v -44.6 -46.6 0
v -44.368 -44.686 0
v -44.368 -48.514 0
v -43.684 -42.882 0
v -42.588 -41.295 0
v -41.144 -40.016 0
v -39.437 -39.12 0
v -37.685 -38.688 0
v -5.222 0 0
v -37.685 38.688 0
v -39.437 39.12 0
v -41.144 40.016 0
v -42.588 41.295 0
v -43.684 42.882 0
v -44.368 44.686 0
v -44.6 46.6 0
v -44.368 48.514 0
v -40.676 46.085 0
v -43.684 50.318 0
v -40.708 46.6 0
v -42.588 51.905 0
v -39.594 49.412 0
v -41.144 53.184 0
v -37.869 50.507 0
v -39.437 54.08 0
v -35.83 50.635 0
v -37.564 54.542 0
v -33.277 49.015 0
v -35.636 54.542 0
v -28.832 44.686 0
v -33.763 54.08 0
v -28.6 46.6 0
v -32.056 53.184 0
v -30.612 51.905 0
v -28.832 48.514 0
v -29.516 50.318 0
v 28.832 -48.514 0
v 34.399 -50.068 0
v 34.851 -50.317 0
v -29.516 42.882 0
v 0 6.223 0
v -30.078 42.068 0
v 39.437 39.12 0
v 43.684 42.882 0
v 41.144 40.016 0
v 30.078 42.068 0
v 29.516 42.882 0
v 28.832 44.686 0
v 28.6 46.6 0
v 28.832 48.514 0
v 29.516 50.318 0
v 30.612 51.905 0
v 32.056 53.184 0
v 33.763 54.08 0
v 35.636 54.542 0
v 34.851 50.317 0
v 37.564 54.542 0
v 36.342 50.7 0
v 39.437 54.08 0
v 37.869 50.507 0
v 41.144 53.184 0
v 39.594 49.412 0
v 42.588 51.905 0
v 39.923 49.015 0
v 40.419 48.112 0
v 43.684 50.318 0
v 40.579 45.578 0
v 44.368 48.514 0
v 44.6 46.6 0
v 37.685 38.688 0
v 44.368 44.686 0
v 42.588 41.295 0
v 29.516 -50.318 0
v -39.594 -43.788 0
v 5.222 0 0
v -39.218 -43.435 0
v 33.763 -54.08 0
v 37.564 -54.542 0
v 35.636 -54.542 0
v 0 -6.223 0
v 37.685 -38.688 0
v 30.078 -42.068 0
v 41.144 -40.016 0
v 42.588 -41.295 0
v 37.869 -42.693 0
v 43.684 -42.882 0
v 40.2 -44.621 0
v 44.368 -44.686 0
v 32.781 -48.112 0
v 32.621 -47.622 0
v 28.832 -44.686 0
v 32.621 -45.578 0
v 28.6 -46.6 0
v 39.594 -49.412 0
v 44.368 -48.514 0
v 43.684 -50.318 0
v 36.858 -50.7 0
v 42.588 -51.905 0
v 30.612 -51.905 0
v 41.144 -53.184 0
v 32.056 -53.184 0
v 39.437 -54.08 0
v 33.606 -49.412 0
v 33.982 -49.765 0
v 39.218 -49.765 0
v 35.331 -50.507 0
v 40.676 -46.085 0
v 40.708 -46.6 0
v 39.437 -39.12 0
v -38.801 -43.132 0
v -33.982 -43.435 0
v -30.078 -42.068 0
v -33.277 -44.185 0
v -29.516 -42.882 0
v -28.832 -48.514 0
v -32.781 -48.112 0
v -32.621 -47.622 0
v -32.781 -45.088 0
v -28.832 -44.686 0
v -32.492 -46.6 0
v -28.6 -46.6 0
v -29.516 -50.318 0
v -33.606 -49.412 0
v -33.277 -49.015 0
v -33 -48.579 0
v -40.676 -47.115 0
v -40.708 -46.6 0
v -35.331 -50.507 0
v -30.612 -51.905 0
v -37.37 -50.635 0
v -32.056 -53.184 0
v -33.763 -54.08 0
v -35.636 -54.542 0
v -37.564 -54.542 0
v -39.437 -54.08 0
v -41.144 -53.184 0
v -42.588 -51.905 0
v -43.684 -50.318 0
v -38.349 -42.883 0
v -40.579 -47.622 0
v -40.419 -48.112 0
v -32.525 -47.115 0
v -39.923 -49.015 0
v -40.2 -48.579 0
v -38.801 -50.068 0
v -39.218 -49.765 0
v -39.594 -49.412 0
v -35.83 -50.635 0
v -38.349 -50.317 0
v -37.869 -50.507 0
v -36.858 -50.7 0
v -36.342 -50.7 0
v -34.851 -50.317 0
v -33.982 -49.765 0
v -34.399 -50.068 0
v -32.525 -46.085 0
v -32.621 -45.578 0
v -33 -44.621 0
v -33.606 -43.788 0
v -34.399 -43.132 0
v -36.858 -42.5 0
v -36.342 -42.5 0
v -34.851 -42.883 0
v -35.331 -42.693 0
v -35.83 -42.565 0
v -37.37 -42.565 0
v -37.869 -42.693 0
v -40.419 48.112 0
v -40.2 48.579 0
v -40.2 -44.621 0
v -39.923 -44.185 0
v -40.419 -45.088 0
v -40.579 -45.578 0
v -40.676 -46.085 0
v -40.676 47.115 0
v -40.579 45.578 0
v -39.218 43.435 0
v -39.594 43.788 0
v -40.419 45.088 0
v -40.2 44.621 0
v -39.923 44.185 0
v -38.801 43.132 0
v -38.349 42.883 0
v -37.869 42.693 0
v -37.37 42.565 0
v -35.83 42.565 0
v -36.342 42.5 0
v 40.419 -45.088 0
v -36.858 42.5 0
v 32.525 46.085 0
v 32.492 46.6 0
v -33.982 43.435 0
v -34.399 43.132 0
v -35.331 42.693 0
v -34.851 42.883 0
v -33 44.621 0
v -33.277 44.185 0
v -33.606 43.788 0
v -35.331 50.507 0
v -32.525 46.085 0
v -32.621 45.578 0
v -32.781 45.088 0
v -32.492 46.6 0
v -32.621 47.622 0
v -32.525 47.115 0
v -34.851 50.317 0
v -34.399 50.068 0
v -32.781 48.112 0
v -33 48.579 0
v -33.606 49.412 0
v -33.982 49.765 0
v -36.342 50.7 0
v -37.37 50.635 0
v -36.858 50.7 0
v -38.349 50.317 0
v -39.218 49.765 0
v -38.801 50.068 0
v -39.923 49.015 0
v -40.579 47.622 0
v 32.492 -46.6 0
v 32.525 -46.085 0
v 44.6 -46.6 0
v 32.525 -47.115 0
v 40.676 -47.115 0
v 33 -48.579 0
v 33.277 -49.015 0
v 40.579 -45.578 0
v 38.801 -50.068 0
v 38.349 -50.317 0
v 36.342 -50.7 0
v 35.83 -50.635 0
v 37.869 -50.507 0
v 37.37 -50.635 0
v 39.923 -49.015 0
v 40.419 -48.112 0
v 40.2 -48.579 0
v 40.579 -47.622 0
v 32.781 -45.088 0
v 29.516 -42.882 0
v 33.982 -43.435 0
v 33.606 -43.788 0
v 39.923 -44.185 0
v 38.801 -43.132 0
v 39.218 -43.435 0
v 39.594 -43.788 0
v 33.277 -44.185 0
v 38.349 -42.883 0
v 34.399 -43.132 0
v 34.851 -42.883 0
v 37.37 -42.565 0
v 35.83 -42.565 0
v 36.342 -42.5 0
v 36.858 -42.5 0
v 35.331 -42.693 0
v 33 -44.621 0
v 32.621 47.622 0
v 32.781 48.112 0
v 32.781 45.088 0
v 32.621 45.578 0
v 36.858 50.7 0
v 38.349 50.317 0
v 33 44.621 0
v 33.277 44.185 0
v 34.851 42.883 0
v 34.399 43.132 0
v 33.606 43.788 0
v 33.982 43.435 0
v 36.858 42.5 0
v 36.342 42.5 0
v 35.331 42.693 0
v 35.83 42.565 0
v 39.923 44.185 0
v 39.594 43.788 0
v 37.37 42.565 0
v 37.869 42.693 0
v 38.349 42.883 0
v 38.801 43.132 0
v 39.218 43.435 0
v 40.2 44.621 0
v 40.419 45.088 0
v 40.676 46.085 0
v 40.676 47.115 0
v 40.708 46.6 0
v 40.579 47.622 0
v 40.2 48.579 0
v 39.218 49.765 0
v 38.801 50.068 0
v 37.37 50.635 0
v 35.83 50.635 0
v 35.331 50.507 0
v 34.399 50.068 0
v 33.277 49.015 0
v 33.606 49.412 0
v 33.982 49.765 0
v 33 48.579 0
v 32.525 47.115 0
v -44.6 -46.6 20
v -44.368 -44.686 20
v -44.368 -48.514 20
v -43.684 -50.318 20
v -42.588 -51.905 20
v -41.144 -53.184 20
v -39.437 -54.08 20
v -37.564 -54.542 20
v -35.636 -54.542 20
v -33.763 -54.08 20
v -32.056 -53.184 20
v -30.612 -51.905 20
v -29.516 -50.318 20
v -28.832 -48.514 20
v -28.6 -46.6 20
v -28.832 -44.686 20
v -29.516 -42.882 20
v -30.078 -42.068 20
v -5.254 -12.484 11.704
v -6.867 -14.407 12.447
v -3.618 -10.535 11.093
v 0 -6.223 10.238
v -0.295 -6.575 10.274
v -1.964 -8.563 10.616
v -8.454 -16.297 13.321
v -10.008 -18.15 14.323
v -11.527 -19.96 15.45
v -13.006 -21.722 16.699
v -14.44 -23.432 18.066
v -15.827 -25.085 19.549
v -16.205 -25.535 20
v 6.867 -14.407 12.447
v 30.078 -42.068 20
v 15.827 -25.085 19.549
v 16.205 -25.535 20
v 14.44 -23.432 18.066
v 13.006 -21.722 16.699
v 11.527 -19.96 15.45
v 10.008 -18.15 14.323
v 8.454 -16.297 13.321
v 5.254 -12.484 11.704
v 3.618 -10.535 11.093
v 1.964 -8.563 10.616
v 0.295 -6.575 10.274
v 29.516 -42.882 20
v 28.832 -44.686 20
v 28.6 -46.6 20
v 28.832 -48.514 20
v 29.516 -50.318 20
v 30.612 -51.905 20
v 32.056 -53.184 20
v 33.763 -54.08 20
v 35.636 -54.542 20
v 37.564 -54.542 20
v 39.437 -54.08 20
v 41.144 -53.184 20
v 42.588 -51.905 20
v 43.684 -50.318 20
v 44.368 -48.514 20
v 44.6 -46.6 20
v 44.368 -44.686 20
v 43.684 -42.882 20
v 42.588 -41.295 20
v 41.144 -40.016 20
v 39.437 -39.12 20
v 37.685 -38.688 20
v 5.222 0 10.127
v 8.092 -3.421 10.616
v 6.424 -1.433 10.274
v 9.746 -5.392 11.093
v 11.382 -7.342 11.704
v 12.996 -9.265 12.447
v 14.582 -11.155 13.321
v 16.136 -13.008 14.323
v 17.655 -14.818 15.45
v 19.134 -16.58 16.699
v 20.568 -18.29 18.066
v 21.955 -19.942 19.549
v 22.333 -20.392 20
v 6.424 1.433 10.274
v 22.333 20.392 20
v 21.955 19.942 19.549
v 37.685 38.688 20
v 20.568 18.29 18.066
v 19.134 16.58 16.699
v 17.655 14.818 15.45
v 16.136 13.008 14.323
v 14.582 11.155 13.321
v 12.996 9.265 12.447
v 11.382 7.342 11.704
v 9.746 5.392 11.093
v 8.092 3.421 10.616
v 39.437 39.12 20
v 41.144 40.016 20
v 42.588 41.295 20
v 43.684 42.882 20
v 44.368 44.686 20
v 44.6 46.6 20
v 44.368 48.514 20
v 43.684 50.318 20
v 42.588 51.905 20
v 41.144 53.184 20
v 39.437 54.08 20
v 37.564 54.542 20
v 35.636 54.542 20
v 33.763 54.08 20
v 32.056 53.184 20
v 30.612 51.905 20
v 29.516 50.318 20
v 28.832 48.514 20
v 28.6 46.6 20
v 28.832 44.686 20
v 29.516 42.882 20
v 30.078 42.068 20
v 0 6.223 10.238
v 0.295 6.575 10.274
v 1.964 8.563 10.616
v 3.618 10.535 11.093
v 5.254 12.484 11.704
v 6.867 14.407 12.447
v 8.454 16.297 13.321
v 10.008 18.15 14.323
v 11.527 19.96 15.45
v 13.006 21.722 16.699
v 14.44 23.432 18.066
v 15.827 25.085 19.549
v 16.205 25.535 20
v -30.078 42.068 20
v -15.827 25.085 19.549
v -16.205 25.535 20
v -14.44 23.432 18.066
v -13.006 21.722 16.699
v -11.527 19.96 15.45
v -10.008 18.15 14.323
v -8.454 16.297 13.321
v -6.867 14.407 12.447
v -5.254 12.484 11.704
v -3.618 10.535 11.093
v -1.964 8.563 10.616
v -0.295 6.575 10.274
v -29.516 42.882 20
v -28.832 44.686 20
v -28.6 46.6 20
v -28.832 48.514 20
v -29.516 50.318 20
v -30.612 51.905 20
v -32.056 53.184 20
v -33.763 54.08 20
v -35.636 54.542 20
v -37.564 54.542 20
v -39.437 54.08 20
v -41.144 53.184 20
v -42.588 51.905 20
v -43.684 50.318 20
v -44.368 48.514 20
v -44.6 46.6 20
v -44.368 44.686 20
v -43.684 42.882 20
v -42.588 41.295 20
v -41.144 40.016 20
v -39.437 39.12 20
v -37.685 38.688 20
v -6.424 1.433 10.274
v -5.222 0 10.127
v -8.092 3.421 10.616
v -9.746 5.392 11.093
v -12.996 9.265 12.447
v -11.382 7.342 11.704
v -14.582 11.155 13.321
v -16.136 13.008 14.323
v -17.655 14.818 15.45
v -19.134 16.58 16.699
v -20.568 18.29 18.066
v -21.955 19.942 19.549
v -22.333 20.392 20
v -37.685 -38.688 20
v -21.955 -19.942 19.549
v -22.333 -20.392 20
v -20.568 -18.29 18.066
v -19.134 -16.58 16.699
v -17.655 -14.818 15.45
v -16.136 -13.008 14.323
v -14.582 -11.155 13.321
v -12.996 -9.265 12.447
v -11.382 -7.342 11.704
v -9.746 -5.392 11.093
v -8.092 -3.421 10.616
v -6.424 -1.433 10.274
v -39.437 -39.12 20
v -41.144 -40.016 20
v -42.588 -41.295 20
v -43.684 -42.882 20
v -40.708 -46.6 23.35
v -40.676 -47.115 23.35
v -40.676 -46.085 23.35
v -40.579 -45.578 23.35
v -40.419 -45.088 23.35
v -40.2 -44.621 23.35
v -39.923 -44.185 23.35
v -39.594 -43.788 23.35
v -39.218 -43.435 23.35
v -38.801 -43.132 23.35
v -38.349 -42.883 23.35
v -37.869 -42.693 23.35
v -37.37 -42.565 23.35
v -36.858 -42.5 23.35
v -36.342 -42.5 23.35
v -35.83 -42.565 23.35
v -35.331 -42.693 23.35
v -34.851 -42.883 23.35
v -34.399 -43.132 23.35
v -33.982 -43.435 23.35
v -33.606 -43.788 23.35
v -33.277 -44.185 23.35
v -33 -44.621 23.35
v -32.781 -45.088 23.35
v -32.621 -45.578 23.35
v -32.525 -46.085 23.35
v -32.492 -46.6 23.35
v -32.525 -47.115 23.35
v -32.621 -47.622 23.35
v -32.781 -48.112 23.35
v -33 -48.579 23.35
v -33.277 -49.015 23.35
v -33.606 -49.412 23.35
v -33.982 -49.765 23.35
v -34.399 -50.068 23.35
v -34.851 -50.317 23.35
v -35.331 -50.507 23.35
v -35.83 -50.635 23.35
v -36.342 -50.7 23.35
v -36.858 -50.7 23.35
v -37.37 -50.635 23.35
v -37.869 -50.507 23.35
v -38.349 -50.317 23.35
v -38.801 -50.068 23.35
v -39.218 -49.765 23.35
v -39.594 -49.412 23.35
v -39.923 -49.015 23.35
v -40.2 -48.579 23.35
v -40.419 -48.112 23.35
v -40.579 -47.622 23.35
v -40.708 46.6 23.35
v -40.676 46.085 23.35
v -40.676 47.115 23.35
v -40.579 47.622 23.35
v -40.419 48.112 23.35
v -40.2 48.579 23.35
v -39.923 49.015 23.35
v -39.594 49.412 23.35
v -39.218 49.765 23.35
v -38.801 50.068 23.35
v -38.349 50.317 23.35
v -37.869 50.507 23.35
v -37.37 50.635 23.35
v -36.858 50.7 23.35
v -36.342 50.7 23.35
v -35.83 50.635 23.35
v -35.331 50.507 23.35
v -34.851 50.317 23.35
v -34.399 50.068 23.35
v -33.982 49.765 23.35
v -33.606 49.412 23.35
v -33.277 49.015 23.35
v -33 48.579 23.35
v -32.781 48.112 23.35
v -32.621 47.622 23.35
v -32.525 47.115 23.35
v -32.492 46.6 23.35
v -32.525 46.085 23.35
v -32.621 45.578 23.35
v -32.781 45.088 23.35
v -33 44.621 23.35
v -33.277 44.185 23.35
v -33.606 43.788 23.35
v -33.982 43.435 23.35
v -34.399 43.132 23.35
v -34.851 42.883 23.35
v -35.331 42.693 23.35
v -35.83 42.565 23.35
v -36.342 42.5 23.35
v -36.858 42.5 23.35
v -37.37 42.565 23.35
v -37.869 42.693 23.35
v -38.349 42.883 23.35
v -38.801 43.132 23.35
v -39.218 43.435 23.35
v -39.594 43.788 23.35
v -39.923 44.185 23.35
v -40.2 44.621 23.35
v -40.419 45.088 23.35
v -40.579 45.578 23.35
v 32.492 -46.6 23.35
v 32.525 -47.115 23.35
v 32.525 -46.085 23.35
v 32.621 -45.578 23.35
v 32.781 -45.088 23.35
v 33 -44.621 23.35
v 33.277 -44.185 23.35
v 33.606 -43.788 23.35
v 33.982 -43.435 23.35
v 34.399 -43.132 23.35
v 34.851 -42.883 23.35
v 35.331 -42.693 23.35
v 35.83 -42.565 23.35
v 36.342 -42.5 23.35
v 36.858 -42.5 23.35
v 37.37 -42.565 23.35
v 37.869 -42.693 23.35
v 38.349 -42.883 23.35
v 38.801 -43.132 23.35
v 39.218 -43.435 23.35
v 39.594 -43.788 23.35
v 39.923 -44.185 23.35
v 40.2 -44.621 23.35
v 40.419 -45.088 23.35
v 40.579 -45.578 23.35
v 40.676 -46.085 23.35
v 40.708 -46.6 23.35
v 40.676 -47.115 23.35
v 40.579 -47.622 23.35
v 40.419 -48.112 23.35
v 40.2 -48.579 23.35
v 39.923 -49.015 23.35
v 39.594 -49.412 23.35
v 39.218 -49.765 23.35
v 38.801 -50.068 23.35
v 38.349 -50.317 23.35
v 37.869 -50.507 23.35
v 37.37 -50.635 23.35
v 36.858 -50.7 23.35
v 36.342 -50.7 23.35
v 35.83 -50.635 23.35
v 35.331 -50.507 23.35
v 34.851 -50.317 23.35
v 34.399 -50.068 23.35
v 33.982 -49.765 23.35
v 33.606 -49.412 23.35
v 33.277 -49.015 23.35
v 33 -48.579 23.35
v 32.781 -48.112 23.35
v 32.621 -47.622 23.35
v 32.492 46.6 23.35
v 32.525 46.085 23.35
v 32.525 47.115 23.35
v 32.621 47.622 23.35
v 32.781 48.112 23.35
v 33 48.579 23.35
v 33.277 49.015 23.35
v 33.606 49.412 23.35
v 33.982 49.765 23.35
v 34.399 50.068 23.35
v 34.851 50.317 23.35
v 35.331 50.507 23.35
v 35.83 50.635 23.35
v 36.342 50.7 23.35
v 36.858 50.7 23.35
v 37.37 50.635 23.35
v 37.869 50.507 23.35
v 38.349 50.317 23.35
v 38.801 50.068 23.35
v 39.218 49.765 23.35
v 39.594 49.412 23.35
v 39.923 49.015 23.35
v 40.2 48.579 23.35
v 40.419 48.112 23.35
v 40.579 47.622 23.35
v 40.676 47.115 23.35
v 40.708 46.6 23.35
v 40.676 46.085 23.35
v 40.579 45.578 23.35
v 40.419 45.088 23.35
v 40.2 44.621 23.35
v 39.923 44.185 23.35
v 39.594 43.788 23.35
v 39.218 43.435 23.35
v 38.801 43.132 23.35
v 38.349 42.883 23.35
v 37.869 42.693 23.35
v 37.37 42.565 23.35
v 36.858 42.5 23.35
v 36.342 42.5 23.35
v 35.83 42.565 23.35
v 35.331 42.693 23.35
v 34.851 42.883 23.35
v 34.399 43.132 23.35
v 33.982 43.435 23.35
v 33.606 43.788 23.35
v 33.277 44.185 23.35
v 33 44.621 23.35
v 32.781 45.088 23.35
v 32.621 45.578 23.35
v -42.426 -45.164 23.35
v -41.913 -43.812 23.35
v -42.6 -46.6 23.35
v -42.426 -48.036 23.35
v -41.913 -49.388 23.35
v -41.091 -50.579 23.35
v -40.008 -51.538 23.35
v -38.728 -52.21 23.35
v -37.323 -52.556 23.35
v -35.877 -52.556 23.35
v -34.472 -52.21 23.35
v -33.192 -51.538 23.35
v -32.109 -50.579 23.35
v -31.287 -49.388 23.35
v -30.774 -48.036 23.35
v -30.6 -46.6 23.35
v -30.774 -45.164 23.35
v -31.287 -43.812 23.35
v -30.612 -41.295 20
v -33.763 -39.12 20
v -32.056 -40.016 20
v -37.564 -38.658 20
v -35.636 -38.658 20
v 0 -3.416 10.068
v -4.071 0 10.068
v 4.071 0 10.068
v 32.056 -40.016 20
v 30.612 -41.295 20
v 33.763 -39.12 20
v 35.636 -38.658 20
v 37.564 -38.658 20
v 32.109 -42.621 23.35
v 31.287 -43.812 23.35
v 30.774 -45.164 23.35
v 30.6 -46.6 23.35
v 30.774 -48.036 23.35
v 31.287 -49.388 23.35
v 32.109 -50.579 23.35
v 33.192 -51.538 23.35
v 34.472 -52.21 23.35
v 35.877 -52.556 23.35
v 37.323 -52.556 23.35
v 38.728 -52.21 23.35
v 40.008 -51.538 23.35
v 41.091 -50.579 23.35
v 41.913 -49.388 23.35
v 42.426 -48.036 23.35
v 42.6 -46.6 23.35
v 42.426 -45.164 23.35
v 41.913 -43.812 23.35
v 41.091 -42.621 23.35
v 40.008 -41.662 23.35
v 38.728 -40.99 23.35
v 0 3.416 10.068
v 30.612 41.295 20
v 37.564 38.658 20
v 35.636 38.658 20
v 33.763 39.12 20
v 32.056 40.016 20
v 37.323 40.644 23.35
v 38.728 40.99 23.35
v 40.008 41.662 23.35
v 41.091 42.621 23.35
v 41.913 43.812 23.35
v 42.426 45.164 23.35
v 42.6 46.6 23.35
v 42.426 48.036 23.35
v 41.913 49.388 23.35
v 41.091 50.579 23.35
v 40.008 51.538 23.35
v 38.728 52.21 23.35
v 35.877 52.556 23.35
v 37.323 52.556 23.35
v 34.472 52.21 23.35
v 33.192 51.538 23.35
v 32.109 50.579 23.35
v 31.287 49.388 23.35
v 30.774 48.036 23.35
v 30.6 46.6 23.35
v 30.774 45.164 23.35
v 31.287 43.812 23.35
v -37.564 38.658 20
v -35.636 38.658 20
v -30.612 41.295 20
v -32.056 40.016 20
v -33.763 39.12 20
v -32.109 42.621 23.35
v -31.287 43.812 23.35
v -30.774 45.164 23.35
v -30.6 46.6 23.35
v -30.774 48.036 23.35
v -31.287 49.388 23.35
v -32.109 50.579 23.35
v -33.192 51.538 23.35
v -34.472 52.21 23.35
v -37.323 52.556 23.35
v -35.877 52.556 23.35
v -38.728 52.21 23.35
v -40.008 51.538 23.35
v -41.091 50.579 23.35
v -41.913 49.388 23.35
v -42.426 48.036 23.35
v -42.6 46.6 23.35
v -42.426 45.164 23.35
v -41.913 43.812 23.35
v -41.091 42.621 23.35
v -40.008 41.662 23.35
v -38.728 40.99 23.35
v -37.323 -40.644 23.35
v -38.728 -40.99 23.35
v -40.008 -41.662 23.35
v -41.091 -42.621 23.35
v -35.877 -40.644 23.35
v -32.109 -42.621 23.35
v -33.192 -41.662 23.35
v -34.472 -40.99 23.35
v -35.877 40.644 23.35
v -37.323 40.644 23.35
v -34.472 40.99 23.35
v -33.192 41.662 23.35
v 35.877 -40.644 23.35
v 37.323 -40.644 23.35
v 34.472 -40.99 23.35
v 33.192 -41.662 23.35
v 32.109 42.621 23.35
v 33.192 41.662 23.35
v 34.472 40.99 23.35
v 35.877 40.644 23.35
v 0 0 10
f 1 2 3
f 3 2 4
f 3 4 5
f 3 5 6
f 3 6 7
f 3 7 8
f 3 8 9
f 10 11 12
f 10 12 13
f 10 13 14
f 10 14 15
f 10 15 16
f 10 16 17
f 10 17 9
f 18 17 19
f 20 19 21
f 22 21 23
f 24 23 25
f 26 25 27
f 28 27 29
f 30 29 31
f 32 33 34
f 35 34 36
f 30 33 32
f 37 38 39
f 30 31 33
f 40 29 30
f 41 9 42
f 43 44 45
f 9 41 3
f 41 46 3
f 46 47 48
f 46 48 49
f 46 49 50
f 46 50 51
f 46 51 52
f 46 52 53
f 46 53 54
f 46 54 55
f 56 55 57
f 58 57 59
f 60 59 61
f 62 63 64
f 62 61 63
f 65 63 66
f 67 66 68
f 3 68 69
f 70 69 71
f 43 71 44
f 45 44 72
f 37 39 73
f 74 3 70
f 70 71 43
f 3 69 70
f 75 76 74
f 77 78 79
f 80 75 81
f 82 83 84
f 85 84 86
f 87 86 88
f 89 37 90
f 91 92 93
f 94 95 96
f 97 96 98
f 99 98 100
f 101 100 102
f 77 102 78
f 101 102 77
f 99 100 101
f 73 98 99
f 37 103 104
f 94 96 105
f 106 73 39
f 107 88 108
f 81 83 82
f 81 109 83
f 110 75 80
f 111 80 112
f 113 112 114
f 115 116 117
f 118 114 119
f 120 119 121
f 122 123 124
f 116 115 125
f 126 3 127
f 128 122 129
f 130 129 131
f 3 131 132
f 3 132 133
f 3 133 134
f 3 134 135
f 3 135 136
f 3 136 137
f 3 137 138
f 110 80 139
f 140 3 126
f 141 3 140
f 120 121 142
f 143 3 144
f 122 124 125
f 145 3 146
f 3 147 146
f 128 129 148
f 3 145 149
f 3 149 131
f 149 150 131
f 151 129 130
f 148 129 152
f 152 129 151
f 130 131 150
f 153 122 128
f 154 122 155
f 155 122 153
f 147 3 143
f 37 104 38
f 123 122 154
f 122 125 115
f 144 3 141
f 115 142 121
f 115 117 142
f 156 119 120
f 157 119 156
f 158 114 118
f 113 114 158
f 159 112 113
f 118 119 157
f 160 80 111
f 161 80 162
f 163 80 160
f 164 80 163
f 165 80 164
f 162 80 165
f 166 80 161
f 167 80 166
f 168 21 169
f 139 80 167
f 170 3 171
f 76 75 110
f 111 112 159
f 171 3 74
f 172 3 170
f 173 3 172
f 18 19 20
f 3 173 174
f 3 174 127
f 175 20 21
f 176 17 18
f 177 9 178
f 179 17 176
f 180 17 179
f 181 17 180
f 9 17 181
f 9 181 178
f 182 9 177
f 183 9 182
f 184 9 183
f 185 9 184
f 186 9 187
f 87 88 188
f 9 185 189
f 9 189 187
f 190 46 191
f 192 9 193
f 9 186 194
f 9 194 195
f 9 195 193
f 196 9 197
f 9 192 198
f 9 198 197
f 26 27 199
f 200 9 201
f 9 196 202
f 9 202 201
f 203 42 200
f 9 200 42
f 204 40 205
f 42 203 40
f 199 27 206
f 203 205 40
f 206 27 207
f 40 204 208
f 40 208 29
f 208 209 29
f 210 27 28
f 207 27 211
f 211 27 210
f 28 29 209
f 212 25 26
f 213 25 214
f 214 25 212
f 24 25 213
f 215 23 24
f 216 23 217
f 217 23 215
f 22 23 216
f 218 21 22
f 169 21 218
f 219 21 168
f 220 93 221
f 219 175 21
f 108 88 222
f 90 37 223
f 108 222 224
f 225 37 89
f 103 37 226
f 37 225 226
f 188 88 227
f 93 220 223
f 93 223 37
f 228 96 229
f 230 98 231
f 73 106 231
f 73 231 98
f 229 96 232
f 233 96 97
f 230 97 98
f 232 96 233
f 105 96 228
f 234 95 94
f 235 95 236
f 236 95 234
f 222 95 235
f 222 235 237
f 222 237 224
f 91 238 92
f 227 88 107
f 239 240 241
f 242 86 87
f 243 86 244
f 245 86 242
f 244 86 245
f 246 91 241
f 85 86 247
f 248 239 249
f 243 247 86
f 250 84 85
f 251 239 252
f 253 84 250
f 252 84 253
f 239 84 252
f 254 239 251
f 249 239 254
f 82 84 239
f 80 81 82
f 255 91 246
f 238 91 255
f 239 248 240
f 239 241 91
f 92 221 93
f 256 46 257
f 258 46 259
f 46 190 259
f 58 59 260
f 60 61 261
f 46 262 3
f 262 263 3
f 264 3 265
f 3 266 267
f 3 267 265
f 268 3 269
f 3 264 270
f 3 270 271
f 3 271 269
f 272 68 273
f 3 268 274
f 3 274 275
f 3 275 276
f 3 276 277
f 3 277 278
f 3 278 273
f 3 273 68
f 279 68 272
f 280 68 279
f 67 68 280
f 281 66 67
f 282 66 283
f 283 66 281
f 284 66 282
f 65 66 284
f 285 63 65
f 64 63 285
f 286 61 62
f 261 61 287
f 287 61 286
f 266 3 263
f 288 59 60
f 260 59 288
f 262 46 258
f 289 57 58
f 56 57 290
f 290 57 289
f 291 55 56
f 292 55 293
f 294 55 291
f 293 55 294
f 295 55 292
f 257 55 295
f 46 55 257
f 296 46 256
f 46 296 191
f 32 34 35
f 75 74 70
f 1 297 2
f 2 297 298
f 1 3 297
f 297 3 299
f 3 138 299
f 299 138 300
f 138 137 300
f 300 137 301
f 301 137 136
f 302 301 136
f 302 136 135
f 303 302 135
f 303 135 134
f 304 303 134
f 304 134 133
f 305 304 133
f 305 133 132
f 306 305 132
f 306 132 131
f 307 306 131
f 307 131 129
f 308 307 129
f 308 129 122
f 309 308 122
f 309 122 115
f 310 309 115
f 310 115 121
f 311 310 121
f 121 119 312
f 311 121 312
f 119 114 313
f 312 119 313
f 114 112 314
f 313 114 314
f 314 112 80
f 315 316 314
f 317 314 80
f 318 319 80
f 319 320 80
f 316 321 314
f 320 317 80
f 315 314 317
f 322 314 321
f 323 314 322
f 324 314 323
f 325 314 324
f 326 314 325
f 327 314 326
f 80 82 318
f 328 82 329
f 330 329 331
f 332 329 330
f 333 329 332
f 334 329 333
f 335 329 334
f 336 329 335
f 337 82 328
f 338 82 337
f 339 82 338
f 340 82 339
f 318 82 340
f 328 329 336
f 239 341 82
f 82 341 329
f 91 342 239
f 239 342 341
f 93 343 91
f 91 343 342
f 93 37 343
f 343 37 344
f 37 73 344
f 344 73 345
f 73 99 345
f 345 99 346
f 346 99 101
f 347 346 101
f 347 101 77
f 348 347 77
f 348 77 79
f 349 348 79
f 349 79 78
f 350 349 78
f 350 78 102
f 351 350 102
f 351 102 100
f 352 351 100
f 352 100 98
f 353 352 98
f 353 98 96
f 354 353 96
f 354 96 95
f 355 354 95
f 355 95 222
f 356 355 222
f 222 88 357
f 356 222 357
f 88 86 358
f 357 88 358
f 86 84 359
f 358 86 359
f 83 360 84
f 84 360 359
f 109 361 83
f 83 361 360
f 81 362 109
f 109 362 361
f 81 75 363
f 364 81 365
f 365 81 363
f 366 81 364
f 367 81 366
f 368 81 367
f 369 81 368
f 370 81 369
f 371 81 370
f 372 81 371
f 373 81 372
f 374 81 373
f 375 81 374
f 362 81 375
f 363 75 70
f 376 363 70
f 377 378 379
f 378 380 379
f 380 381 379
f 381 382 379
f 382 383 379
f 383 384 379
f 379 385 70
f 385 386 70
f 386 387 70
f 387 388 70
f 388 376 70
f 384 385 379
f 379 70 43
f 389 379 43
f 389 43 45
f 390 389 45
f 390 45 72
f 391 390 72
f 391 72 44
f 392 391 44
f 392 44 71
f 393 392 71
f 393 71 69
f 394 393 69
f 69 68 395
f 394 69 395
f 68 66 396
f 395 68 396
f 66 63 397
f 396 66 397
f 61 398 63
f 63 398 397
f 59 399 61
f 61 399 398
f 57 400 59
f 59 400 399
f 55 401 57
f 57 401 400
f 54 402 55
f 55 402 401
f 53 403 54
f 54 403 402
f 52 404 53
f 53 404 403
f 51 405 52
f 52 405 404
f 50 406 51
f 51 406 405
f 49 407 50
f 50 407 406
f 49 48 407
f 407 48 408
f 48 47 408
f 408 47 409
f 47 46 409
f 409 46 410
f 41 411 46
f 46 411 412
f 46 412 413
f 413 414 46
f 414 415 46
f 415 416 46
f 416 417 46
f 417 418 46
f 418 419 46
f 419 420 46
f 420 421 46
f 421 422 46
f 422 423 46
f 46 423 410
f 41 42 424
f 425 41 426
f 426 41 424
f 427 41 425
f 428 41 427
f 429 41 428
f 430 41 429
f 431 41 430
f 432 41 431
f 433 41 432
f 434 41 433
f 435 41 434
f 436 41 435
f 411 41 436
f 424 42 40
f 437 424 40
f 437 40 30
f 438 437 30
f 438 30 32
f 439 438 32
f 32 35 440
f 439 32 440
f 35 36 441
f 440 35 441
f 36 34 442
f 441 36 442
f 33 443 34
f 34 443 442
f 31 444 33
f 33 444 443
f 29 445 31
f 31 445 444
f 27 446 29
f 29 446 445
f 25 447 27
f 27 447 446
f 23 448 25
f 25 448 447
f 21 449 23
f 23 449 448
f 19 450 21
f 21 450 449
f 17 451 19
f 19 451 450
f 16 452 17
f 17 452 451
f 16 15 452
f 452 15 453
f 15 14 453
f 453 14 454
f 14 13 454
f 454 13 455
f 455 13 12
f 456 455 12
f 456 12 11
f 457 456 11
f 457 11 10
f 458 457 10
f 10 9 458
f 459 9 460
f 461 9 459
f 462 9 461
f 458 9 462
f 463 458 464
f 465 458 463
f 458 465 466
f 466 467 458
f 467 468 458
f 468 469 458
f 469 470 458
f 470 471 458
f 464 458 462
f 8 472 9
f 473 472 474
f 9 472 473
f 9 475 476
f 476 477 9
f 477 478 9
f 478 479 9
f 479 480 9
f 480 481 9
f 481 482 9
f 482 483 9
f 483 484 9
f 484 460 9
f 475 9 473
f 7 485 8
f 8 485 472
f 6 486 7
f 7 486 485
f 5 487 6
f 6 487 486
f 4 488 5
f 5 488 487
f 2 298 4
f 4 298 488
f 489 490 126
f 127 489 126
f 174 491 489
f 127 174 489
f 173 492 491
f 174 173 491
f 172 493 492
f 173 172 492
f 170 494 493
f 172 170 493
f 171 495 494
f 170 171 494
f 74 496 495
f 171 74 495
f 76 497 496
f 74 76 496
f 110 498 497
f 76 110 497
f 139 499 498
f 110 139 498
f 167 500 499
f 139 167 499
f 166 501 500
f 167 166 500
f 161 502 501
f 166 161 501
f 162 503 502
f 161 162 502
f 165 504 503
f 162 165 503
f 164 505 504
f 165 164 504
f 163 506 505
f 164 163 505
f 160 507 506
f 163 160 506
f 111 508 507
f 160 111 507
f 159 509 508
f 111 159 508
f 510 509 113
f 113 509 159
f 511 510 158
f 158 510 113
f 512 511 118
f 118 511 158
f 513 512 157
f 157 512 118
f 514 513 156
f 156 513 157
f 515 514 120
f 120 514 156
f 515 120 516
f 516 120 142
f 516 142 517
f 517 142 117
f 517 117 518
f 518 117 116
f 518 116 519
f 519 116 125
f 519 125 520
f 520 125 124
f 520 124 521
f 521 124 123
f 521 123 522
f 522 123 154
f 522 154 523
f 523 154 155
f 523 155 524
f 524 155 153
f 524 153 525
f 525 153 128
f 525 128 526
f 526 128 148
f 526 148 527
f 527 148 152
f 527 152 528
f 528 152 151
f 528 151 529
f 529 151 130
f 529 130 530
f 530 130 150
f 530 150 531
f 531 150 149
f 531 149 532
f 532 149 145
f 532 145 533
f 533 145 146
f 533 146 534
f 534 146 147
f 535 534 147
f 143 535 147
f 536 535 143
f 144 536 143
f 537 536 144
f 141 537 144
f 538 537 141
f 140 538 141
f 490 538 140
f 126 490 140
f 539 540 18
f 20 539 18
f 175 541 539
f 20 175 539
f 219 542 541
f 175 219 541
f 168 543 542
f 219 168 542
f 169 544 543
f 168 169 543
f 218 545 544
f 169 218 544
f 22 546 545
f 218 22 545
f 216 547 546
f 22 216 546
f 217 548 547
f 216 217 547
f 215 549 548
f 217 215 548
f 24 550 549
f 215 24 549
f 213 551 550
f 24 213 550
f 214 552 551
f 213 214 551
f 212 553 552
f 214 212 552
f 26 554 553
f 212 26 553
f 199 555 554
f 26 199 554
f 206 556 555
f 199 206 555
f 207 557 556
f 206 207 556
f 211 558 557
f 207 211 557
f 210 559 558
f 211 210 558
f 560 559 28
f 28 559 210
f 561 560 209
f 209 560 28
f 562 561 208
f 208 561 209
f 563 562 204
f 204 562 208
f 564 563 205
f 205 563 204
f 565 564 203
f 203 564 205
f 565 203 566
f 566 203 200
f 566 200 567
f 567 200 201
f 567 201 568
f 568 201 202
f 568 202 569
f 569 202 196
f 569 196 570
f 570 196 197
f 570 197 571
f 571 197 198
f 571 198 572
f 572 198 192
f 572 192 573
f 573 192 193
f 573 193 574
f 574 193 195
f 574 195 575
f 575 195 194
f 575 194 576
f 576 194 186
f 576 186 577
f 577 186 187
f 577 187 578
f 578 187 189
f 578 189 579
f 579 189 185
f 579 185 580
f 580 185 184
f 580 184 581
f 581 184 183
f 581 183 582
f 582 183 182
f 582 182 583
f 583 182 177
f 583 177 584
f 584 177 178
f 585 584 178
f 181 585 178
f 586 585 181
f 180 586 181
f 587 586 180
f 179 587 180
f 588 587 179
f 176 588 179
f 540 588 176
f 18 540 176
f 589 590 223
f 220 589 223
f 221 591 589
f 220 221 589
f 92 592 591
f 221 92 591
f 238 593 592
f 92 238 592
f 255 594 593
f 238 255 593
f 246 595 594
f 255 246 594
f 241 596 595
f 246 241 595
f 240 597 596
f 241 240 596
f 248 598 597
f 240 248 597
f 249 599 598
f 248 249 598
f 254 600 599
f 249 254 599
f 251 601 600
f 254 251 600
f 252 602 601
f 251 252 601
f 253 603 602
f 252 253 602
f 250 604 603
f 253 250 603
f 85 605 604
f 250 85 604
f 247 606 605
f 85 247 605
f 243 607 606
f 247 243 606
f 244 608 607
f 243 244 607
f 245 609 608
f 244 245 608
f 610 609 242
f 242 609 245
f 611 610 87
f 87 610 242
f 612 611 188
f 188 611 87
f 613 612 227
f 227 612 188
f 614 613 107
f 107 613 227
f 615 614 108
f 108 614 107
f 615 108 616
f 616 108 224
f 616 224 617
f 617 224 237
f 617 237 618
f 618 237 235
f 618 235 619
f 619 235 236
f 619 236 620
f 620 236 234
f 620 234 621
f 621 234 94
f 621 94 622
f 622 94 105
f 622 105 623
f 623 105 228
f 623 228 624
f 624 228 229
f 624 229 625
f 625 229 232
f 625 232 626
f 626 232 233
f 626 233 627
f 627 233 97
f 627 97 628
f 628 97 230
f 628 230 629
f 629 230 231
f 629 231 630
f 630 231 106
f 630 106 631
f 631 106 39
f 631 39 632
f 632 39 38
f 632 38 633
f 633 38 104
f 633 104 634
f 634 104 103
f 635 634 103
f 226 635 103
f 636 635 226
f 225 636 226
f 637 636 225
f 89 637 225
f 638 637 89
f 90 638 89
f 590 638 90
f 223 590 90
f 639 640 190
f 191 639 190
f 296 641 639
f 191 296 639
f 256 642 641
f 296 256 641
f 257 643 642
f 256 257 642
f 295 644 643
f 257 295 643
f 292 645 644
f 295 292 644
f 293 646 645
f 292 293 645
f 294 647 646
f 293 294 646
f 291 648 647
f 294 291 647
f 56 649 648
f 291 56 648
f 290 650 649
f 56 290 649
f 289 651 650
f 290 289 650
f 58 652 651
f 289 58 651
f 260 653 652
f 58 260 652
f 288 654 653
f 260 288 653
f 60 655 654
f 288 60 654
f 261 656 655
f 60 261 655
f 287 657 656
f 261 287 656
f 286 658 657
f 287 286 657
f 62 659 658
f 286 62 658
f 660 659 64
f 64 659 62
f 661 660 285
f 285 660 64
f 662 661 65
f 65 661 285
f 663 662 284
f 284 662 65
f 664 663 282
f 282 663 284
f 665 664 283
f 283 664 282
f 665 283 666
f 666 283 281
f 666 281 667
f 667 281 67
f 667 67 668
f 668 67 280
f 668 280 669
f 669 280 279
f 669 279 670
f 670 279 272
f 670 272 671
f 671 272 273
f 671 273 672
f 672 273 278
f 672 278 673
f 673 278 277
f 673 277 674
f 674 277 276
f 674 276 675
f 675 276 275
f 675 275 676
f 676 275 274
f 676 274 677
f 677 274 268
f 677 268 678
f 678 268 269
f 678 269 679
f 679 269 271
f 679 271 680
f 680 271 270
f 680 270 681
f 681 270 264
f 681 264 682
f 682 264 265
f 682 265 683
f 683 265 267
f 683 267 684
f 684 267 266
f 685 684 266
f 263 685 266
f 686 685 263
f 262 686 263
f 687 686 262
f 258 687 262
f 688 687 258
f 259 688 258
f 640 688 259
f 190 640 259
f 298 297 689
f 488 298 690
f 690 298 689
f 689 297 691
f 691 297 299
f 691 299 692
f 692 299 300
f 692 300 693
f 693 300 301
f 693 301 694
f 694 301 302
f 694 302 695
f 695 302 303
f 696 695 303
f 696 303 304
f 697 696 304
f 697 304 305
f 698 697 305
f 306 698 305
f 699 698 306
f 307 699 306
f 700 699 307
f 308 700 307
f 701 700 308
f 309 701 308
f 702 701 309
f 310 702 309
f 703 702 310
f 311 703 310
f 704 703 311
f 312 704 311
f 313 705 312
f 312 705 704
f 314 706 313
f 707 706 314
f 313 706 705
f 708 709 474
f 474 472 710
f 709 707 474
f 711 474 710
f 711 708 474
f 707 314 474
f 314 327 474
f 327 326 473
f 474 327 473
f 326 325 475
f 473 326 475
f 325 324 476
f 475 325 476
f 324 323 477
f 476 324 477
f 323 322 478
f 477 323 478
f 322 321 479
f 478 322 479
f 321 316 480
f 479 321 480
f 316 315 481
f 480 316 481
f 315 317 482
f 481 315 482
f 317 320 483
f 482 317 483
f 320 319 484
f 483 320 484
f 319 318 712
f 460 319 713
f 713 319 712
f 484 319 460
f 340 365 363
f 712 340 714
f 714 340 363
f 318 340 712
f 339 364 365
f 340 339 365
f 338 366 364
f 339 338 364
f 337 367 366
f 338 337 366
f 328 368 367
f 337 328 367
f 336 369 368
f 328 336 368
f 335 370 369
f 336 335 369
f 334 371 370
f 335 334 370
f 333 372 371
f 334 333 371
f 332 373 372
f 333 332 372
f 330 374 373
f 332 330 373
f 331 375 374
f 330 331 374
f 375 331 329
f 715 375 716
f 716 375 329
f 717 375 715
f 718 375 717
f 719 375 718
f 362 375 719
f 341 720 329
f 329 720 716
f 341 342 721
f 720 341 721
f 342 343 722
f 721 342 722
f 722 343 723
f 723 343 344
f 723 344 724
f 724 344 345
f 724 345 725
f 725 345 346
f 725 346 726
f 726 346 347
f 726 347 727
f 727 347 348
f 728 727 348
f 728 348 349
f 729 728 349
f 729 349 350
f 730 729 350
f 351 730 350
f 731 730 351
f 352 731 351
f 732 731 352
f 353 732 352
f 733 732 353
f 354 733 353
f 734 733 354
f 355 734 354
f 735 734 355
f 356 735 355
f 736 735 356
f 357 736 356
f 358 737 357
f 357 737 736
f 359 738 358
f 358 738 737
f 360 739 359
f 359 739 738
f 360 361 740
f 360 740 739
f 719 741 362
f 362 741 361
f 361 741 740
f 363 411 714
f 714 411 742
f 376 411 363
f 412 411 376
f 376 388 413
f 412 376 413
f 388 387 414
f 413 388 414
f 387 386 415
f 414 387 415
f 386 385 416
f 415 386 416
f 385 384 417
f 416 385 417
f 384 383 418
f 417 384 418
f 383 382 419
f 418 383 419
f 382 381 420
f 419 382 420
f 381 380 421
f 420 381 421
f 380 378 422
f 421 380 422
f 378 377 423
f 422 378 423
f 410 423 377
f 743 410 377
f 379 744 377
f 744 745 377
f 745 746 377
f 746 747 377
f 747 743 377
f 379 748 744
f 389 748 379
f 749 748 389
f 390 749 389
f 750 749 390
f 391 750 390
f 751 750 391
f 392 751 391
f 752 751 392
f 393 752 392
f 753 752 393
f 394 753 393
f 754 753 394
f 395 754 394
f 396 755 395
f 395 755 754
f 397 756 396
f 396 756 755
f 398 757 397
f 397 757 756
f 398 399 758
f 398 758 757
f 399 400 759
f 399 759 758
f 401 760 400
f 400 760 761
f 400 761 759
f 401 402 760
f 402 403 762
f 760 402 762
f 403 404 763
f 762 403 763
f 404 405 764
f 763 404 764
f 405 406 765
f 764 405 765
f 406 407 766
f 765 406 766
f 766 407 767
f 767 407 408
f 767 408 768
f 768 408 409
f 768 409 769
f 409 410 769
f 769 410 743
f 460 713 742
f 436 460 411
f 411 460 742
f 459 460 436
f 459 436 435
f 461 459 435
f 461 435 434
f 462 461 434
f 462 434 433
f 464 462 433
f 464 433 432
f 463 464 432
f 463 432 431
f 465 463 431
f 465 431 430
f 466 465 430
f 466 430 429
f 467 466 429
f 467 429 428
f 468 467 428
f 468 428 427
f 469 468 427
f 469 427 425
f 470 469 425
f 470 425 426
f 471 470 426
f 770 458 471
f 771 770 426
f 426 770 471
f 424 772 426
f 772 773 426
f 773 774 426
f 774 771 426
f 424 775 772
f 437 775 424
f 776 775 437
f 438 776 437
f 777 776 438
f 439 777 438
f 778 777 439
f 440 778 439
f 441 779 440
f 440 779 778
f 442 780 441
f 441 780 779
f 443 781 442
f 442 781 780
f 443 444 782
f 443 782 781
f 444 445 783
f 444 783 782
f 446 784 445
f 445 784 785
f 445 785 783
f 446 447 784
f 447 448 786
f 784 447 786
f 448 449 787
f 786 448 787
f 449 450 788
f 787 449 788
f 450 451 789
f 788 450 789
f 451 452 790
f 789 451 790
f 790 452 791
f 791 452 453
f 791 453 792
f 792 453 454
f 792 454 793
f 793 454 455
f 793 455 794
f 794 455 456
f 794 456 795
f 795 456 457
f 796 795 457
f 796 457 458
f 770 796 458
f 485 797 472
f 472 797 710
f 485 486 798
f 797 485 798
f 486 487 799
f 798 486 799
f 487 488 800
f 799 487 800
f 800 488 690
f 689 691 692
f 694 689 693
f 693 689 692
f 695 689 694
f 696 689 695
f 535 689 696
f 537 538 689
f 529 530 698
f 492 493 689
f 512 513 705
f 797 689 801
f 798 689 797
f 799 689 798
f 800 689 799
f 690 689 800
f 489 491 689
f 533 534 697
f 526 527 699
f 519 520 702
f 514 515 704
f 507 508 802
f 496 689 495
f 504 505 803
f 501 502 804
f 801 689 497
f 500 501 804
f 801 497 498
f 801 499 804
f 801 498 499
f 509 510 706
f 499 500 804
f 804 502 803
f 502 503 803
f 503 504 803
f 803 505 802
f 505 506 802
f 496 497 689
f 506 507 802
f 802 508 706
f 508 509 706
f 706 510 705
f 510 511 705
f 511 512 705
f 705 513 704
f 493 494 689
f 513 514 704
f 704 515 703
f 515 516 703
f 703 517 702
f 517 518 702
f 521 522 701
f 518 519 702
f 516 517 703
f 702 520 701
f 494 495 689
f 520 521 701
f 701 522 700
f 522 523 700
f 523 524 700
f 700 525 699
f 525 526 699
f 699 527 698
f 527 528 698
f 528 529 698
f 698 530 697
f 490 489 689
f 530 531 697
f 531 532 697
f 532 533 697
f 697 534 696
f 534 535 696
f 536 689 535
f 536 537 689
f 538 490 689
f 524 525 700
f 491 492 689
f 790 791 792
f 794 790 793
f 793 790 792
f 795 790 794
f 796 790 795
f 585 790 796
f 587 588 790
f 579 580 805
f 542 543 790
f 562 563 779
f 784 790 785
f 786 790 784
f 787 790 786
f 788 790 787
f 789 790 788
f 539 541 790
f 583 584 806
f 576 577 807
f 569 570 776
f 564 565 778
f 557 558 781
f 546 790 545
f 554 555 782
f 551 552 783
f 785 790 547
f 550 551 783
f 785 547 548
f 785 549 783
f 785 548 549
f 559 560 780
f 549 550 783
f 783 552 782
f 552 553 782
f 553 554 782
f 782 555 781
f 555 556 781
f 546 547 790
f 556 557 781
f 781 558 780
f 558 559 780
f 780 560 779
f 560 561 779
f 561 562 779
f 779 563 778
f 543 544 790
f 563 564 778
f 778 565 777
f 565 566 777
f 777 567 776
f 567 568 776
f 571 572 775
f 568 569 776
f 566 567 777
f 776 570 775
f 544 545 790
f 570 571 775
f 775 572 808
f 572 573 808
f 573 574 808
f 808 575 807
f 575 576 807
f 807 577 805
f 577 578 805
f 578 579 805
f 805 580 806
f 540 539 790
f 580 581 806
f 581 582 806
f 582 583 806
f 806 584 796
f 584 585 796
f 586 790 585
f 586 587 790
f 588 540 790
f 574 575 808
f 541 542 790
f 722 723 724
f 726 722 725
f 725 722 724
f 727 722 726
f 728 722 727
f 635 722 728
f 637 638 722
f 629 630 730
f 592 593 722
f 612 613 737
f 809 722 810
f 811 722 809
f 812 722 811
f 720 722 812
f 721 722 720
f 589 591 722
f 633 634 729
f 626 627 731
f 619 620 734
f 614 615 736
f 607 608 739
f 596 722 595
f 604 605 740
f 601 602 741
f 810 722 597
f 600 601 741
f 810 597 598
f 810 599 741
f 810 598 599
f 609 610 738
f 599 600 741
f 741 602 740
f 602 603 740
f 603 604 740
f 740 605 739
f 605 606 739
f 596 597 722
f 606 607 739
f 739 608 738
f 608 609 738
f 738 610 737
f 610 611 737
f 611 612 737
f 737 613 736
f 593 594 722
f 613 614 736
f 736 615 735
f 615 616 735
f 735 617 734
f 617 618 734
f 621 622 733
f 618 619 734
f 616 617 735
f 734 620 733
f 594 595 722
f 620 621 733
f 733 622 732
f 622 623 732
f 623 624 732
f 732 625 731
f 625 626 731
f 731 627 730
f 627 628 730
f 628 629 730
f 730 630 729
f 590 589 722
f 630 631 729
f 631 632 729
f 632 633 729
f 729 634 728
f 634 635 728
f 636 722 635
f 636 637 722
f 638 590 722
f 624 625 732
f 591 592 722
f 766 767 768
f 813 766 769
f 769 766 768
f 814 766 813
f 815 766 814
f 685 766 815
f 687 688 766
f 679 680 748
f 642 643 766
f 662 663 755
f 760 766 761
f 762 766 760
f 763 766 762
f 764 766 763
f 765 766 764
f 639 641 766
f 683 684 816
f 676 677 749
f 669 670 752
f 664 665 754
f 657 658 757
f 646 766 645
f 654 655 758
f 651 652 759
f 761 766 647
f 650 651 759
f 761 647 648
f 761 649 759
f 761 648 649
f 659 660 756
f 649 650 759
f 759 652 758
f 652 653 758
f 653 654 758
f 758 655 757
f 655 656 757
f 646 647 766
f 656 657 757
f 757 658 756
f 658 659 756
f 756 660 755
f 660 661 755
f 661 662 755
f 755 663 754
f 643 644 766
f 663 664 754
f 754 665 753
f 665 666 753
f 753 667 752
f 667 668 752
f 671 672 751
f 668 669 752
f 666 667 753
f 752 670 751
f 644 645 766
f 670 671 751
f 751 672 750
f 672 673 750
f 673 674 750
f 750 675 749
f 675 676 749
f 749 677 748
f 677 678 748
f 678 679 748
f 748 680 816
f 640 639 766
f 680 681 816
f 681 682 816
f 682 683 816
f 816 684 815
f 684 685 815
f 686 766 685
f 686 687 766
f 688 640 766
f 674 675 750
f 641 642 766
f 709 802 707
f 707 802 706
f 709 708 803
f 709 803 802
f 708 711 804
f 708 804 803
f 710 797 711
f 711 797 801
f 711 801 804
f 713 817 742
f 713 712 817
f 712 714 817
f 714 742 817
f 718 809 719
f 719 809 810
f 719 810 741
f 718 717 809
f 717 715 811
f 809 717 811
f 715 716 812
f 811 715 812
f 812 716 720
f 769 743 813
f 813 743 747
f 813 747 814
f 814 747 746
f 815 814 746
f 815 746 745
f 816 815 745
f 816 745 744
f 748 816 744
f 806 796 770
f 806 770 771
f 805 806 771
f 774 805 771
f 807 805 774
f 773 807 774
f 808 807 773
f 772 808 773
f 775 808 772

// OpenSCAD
// file: myLibs.scad
pi= 3.14159265359;

module hole(diam, height, clearance= 0.1)
{
        fn= round(diam * pi / 0.5);
        cylinder(h= height, r=diam / 2 / cos(180 / fn) + clearance, $fn=fn);
}

module nutTrap(ffd, faces=6, height=1)
{
	cylinder(h= height, r=ffd / cos(180 / faces) / 2 + 0.05, $fn=faces);
}

// A slot which has rounded ends, but total length is l
module slot(d= 4, l= 8, ht= 1, clearance=0.1) {
	fn= round(d * pi / 0.5);
	rd= d / 2 / cos(180 / fn) + clearance;
	d1= rd*2;
	union() {
		translate([0,0,ht/2]) cube([l-d1, d1, ht], center=true);
		translate([-(l-d1)/2, 0, ht/2]) cylinder(h=ht, r=rd, $fn=fn, center=true);
		translate([(l-d1)/2, 0, ht/2]) cylinder(h=ht, r=rd, $fn=fn, center=true);
	}
}

module nslot(d=4, l= 8, ht=1, clearance=0.1) {
	x= l-(d+clearance);
	hull() {
		translate([x/2, 0, 0])  hole(d, ht, clearance);
		translate([-x/2,0,0]) hole(d,ht, clearance);
	}
}

module rounded_base(w, l, r, h) {
	v1= [w/2-r, l/2-r, 0];
	v2= [-w/2+r, -l/2+r, 0];
	v3= [-w/2+r, l/2-r, 0];
	v4= [w/2-r, -l/2+r, 0];
	hull() {
		translate(v1) cylinder(r= r, h=h);
		translate(v2) cylinder(r= r, h=h);
		translate(v3) cylinder(r= r, h=h);
		translate(v4) cylinder(r= r, h=h);
	}
}
// file: w-wheel.scad
// steve grabbers W wheel
od= 31.2;
id= 28;
t= (od-id);
thick= 11.7;
t2= thick-t;

function w_wheel_dia()= od;
function w_wheel_width()= thick;

module W_wheel() {
	cylinder(r1=od/2,r2=id/2, h=t/2);
	translate([0,0,t/2]) cylinder(r2=od/2,r1=id/2, h=t/2);
	translate([0,0,t]) cylinder(r=od/2, h= t2/2);
	translate([0,0,-t2/2]) cylinder(r=od/2, h= t2/2);
}

module w_wheel() {
	difference() {
		translate([0,0,-t/2]) W_wheel();
		#translate([0,0,-(thick+4)/2]) cylinder(r=8/2, h=thick+4, $fn=40);
	}
}

w_wheel();
//W_wheel();
// file: makerslide.scad
module makerslide(h=100) {
	linear_extrude(height=h, center=true, convexity = 10)
		import("makerslide_extrusion_profile.dxf");
}

makerslide(50);
// main file
use <makerslide.scad>
use <w-wheel.scad>
use <myLibs.scad>
thickness = 20;

fudge= 1.0; // fudge factor to tighten the wheels around the slide 1.0 is snug but not too tight, smaller will be tighter
wheel_diameter = w_wheel_dia();
wheelx = (40 + wheel_diameter) / 2 +fudge;
wheely = wheelx +10;
wheel_width= w_wheel_width();

bearingThickness= 7;
bearingOD= 22;
bearingID= 8;
standoffht= (wheel_width-bearingThickness)/2+1; // add some clearance

d= sqrt(wheelx*wheelx + wheely*wheely);

%translate([0, 0, 20+thickness+bearingThickness/2+standoffht]) rotate([90, 90, 0]) makerslide(150);

// Bearing standoff that contacts inner sleave of bearing, and clears the wheels from the X frame
module standoff() {
	cylinder(r1= bearingID, r2=bearingID/2+2, h=standoffht);
}

translate([0, 0, thickness/2])
difference() {
  union() {
    for (x = [-wheelx, wheelx]) {
      for (y = [-wheely, wheely]) {
        translate([x, y, 0]) {
			cylinder(r=8, h=thickness, center=true);
			translate([0,0,thickness/2]) standoff();
 			%translate([0, 0, thickness/2 + bearingThickness/2+standoffht]) w_wheel();
        }
      }
    }
    for (a = [-40, 40]) rotate([0, 0, a]) difference() {
      cube([8, d*2, thickness], center=true);
      translate([0, 0, 50]) rotate([0, 90, 0])
        cylinder(r=50, h=8.1, center=true, $fn=120);
    }
  }
  for (x = [-wheelx, wheelx]) {
    for (y = [-wheely, wheely]) {
      translate([x, y, -thickness/2]) {
        hole(8, thickness+5);
      }
    }
  }
}
